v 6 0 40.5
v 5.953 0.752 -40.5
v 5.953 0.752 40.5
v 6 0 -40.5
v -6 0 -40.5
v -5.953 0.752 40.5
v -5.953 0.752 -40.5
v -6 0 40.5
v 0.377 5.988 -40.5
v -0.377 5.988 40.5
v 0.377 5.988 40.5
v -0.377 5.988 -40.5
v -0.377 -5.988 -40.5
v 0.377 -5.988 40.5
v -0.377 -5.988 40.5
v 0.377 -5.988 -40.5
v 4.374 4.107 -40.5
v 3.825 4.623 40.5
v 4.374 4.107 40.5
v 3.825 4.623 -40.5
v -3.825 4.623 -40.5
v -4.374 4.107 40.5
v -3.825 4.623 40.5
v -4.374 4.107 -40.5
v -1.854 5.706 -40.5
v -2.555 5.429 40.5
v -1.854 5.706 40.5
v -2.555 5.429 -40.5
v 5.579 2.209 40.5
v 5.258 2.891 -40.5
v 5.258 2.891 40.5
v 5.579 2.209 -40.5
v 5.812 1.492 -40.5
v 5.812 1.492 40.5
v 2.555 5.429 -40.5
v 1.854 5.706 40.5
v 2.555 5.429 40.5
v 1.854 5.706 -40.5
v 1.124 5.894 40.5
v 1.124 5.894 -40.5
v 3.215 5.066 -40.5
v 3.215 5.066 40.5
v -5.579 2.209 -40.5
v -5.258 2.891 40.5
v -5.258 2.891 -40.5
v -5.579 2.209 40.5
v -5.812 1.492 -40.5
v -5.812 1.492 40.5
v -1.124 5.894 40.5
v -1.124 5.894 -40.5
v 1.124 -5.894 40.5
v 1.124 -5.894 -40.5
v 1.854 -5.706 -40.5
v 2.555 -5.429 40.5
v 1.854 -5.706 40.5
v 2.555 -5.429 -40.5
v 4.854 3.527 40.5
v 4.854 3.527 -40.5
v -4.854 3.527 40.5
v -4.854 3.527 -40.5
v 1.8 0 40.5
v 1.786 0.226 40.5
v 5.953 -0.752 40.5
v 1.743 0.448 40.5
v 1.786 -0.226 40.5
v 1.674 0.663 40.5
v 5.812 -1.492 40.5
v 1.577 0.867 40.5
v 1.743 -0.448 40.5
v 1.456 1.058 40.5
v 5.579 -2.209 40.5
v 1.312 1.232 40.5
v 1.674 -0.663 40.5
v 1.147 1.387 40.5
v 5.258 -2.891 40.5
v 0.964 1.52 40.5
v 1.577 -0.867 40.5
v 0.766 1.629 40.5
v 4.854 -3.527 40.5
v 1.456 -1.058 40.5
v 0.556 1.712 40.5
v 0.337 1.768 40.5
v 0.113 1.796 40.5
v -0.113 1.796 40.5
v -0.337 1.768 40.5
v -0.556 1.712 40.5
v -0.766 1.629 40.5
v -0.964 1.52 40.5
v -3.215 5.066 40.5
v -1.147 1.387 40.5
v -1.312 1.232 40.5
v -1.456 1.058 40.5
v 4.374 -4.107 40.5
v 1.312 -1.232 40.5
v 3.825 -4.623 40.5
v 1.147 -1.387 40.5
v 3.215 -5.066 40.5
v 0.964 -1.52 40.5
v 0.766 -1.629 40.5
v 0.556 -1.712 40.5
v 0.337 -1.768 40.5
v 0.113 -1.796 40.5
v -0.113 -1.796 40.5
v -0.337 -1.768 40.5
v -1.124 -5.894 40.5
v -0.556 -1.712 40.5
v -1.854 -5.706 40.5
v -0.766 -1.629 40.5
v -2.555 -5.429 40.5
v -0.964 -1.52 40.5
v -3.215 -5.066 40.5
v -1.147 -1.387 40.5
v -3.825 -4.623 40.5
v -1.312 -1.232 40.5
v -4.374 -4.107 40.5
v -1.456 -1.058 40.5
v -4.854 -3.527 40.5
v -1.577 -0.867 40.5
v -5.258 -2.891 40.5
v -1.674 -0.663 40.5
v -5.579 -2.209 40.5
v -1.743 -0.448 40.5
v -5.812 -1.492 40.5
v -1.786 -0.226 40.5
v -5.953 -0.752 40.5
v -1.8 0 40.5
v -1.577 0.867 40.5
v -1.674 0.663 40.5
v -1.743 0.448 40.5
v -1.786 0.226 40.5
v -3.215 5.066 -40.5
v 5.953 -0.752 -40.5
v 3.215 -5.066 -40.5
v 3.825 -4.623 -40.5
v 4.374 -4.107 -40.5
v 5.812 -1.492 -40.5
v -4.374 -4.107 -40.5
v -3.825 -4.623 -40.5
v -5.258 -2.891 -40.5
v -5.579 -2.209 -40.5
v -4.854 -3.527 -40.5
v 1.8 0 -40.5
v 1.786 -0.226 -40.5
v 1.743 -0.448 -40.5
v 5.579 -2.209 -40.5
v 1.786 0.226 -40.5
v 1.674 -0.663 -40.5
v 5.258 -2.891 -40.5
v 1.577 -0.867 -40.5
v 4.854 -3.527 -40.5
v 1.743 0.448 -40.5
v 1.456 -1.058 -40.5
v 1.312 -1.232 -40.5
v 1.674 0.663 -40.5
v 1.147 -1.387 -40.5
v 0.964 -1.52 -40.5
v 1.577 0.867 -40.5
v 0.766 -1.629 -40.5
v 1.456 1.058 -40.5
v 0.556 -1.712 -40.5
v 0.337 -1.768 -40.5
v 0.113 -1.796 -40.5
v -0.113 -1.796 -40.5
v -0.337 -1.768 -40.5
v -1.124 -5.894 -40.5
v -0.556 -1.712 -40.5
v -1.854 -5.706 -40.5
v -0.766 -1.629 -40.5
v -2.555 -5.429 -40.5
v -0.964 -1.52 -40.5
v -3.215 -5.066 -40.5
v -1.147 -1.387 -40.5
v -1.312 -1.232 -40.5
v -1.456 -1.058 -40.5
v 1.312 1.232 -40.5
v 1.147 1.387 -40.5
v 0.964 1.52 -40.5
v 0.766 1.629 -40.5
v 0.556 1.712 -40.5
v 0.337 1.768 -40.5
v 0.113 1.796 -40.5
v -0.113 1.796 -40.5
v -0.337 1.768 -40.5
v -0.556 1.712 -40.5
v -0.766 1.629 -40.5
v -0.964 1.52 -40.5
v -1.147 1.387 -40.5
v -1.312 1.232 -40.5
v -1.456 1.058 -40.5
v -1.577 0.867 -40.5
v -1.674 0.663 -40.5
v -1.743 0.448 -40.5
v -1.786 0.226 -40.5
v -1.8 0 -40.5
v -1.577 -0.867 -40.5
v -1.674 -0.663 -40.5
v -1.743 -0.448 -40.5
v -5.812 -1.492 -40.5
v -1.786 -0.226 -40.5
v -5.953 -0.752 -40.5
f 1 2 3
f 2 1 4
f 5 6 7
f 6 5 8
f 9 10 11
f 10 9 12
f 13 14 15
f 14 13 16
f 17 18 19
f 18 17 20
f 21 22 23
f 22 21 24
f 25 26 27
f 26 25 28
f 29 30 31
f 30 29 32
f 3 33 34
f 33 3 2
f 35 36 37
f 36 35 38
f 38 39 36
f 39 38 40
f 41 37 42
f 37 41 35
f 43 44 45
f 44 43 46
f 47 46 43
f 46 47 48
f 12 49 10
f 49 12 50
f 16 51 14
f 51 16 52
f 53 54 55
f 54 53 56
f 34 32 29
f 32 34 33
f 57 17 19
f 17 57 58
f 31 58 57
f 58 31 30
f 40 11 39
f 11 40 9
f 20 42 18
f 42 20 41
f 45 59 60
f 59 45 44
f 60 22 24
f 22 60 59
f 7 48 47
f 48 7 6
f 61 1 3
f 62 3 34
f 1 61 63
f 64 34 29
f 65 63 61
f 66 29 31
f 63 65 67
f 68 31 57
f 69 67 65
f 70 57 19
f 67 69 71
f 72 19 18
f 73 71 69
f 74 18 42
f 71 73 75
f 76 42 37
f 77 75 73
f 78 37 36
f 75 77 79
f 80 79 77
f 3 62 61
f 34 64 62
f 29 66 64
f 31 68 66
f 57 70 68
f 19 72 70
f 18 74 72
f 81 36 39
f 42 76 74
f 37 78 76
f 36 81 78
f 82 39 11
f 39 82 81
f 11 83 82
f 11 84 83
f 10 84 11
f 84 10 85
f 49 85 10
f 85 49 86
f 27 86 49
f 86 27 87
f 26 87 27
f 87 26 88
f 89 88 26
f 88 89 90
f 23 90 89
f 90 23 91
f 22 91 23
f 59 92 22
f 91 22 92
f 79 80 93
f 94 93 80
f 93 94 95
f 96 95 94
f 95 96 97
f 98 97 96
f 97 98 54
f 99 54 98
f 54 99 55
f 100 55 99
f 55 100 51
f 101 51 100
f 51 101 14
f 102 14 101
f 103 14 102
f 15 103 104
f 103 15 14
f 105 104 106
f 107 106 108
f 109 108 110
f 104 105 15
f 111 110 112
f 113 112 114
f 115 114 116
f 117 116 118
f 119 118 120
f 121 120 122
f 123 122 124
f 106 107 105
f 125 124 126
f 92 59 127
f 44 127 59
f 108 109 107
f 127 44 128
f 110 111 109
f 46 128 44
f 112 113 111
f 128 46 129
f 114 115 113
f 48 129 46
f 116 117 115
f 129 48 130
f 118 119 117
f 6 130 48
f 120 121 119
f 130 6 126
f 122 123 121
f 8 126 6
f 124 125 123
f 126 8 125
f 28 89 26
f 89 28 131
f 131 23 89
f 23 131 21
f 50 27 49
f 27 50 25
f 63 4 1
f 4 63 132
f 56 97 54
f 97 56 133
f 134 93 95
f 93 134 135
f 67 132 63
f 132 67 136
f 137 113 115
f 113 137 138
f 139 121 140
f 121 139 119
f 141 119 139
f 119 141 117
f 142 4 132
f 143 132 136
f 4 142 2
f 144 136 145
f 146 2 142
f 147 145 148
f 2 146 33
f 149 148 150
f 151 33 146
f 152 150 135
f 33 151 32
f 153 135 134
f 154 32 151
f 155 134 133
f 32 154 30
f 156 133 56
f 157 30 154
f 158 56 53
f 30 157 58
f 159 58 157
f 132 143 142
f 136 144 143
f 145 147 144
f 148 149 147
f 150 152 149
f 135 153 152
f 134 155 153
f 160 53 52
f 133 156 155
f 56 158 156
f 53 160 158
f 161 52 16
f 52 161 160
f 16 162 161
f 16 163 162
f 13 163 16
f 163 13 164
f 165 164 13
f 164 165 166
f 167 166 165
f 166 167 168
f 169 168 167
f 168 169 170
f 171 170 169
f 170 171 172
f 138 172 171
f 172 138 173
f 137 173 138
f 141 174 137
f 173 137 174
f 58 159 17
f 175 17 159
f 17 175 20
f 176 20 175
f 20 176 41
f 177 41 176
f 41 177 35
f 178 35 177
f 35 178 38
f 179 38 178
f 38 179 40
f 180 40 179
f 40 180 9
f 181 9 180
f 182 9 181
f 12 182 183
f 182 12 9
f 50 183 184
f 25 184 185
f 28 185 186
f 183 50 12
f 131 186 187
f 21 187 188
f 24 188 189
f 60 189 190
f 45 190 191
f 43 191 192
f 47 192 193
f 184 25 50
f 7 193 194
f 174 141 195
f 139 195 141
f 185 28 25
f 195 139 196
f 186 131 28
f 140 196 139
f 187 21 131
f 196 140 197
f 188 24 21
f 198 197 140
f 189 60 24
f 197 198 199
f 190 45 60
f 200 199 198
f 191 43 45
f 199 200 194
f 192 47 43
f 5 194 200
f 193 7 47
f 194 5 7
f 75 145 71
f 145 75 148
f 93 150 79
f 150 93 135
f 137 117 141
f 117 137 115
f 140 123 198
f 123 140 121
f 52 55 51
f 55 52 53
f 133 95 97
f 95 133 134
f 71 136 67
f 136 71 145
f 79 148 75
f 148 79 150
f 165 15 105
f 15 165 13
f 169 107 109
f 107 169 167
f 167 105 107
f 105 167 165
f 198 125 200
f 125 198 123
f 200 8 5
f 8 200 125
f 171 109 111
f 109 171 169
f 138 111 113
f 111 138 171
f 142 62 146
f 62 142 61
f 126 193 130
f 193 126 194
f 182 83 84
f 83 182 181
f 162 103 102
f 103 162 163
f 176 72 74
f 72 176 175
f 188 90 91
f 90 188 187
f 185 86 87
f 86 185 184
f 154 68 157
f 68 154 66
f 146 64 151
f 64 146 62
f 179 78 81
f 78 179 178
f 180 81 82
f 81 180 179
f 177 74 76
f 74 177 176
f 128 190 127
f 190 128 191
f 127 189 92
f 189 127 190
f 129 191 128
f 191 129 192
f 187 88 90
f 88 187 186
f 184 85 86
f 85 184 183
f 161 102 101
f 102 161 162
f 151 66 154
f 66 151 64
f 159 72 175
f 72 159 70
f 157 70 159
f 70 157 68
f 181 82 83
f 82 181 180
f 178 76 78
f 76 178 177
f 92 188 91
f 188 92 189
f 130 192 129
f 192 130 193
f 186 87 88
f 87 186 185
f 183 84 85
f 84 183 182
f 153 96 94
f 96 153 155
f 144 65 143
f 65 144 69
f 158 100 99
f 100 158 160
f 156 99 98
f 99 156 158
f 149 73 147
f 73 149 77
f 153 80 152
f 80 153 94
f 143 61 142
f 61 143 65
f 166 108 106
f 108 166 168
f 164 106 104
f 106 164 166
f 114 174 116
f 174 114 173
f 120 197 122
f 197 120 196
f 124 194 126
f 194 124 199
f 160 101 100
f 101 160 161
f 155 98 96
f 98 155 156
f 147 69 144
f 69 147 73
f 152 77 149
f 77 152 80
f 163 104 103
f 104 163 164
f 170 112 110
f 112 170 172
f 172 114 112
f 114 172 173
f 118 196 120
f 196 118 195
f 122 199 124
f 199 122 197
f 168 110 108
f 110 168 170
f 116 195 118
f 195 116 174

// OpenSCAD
$fn = 50;


difference() {
	union() {
		translate(v = [0, 0, -40.5000000000]) {
			cylinder(h = 81, r = 6.0000000000);
		}
	}
	union() {
		translate(v = [0, 0, -100.0000000000]) {
			cylinder(h = 200, r = 1.8000000000);
		}
	}
}
